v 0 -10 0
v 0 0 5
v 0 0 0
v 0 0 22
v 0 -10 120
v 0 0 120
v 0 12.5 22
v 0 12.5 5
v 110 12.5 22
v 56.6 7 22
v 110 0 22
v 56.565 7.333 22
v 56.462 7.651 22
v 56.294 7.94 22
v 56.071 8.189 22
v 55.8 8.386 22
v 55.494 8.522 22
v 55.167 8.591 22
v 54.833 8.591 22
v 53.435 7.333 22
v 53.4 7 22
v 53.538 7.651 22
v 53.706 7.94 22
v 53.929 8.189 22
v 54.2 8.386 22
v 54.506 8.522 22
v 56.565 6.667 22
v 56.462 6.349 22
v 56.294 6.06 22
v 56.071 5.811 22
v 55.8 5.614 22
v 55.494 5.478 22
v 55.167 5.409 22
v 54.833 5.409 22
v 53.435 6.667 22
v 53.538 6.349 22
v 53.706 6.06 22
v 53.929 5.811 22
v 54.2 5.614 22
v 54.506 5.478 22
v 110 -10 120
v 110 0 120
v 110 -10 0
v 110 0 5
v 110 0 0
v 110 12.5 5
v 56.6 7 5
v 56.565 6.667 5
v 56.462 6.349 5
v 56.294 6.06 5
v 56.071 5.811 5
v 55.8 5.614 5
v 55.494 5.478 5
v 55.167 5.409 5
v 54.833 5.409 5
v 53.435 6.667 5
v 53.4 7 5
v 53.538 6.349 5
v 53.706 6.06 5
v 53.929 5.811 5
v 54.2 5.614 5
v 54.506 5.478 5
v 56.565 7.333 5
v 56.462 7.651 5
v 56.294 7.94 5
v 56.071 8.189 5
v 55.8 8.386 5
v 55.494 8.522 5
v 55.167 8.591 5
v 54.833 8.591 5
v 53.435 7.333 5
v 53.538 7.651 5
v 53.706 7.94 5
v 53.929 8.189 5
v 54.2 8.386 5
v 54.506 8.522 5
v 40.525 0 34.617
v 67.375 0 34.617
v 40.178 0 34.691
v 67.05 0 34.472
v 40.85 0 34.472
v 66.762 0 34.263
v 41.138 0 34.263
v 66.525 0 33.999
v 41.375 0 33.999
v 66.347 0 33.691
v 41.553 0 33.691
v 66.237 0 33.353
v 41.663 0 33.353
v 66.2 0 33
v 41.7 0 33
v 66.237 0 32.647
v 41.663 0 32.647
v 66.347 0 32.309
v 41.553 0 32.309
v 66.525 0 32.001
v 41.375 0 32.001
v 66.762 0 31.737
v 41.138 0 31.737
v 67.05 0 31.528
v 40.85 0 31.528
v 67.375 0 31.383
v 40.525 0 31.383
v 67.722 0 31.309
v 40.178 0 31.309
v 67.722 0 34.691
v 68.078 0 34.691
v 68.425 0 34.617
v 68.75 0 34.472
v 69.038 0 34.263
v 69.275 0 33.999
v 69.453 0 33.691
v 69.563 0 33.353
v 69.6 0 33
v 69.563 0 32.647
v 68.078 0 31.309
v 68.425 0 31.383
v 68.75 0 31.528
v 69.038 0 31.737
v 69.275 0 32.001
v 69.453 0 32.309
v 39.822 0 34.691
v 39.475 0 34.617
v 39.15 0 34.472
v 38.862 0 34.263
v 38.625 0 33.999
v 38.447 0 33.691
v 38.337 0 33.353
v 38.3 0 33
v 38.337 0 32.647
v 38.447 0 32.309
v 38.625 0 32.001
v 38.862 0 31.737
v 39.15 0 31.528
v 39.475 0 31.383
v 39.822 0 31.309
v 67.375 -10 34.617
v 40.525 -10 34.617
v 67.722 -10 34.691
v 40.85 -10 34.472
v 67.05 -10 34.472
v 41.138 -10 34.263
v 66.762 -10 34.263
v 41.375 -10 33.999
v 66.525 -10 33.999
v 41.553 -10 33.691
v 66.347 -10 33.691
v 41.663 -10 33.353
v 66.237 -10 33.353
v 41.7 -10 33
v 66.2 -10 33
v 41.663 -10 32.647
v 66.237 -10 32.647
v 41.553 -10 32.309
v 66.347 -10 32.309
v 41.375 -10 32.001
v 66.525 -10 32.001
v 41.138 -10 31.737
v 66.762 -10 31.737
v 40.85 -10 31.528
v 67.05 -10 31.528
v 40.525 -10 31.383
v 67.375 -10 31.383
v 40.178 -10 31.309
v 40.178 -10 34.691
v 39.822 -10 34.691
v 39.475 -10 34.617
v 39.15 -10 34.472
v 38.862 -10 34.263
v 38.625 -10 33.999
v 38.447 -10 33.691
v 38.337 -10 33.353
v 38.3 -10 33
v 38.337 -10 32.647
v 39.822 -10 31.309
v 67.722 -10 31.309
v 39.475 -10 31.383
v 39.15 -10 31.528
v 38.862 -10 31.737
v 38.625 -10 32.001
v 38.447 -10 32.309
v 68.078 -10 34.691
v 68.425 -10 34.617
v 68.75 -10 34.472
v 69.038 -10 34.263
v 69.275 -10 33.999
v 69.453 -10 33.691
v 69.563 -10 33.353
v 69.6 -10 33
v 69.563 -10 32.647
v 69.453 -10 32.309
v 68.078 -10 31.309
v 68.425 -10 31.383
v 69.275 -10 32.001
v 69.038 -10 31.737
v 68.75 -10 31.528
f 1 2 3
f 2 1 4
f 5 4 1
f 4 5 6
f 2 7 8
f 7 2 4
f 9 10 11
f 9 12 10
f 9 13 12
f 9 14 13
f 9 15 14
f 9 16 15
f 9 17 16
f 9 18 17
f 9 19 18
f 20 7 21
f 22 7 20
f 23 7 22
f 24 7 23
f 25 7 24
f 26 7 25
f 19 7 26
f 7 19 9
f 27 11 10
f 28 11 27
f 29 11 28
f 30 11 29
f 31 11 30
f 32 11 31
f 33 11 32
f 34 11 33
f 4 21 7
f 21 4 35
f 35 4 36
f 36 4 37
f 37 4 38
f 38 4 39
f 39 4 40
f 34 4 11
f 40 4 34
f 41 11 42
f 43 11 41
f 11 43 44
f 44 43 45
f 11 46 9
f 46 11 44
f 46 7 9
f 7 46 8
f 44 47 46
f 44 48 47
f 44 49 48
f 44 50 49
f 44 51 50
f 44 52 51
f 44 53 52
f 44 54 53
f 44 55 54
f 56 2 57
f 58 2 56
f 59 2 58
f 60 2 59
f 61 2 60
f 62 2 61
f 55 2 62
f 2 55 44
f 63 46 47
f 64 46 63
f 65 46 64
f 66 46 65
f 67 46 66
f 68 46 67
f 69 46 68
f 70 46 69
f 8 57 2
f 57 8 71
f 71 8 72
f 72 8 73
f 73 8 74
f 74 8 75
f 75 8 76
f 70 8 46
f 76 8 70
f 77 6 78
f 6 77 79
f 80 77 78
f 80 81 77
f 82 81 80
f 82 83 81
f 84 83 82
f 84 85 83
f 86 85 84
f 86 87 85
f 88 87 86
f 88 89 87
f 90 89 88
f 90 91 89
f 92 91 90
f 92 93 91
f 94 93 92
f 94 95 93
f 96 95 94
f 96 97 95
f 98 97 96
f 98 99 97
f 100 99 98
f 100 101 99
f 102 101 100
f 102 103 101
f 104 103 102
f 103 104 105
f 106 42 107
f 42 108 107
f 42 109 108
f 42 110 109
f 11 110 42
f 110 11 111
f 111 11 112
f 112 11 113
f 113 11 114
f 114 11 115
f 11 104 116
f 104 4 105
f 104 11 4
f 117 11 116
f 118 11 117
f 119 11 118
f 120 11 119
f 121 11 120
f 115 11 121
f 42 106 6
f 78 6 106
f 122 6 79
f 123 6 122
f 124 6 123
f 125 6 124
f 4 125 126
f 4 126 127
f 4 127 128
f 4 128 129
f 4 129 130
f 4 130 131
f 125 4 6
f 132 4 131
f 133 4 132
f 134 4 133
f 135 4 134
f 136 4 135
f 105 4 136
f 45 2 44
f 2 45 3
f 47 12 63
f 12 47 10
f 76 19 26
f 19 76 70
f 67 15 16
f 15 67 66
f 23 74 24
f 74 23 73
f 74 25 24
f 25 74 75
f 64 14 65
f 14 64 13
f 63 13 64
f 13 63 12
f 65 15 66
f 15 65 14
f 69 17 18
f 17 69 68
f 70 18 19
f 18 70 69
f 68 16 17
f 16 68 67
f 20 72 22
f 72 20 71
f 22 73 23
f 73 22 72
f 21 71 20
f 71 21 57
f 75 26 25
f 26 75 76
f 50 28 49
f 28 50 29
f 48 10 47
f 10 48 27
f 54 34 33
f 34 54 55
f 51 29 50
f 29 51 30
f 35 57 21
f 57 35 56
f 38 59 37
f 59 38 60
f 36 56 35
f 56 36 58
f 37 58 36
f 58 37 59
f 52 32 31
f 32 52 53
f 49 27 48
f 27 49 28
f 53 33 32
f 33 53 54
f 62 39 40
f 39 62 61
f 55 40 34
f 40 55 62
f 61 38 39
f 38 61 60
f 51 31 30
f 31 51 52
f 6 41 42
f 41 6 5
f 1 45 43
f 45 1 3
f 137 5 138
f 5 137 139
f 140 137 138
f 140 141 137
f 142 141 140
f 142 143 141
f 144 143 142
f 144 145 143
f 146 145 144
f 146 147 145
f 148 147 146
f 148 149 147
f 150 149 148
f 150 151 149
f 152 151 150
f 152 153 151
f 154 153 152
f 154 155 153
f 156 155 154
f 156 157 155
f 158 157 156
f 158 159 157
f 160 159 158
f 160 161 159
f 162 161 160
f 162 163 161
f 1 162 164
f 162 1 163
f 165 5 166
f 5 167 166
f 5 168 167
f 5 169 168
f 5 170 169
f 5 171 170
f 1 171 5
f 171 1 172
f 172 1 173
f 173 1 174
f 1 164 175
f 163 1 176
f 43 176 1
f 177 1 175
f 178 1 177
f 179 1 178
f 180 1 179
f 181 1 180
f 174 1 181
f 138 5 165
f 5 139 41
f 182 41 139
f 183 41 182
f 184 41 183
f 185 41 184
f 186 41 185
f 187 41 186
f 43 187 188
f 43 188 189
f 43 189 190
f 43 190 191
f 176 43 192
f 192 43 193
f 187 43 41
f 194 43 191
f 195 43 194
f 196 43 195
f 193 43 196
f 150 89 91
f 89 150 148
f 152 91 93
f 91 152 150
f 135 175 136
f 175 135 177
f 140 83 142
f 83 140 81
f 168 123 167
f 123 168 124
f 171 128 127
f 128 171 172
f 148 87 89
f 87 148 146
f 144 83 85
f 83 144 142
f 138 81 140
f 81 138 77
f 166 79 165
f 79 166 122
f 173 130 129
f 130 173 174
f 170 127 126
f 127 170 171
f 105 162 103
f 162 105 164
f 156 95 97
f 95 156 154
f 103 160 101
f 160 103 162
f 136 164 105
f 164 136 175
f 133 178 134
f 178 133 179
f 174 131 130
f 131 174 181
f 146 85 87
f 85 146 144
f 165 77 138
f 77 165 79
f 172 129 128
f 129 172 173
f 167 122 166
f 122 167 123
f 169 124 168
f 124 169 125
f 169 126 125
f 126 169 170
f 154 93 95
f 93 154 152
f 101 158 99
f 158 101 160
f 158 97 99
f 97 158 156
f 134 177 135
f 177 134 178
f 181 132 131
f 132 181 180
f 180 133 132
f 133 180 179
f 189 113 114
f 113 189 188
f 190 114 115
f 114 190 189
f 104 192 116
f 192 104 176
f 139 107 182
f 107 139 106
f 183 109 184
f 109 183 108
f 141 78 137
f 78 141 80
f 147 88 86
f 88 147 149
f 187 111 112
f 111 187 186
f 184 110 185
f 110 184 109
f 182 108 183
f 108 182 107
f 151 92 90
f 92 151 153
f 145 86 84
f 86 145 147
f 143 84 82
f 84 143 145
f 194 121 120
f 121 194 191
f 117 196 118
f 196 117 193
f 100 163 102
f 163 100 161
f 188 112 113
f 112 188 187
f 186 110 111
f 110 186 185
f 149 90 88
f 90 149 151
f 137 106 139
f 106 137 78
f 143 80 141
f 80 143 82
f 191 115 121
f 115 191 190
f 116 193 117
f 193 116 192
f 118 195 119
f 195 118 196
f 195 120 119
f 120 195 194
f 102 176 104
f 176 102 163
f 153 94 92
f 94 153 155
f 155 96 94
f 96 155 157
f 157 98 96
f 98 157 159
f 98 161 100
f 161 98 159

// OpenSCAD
// ==== Scanner parameters ====
speaker_w = 58;        // Width
speaker_h = 58;        // Height

plate_w = 110;        // Width
plate_h = 110;        // Height
plate_thick = 5;        // Plate thickness

//scanner_d = 100;         // Depth
tab_offset = 7;         // Distance from edge to tab center (estimate! Measure yours if you can)
tab_dia = 3.6;          // This is a hole for ear
mount_dia = 3.2;        // Mounting hole diameter (estimate! Use caliper if you have one)

win_w = 75;             // Window width (measure the actual speaker if possible)
win_h = 75;             // Window height (measure the actual speaker if possible)
window_position_x = (plate_w - win_w) / 2;
window_position_y = (plate_h - win_h) / 2;

front_of_speaker_to_ear = 13.5;

layer2_x = 12.5;
layer2_y = layer2_x;
layer2_depth = 3;

inner_hole_from_edge = 4.5;

Arduino_base_x = 40;
Arduino_base_y = 33;

//difference() {
//    // --- Main plate ---
//    cube([plate_w, plate_h, plate_thick]);
//    
//    // --- speaker window ---
//    // Centered window, adjust as needed for your module!
//    translate([window_position_x, window_position_y, -1])
//        cube([win_w, win_h, plate_thick + 2]);
//    
//    // --- Mounting holes (2 outer) ---
//    translate([plate_w / 2, 7, -1])
//        cylinder(d = mount_dia, h = plate_thick + 99, $fn = 30);
//    translate([plate_h / 2, plate_w - 7, -1])
//        cylinder(d = mount_dia, h = plate_thick + 99, $fn = 30);
//}
//
//difference() {
//    translate([layer2_x, layer2_y, layer2_depth])
//        cube([win_w + 10, win_h + 10, front_of_speaker_to_ear]);
//    
//    translate([layer2_x + 5, layer2_y + 5, layer2_depth - 1])
//        cube([win_w, win_h, front_of_speaker_to_ear + 2]);
//}
//
//difference() {
//    translate([layer2_x, layer2_y, front_of_speaker_to_ear + layer2_depth])
//        cube([win_w + 10, win_h + 10, 5]);
//    
//    translate([layer2_x + 13.5, 0 , (front_of_speaker_to_ear + layer2_depth) - 1])
//        cube([speaker_w, speaker_h + 50, 5 + 2]);
//    
//    // --- Mounting holes (2 inner) ---
//    translate([layer2_x + 14 - inner_hole_from_edge, plate_w / 2, -1])
//        cylinder(d = tab_dia, h = layer2_depth + 99, $fn = 30);
//    translate([speaker_w + layer2_x + 13 + inner_hole_from_edge, plate_w / 2, -1])
//        cylinder(d = tab_dia, h = layer2_depth + 99, $fn = 30);
//}

module m3_hole_y(pos) {
    // pos = [x, z]
    translate([pos[0], 5, pos[1]])  // position X,Z; Y will be drilled through
        rotate([90, 0, 0])          // rotate cylinder to align along Y-axis
            cylinder(d=3.4, h=20, $fn=30);  // drill depth matches cube height
}

difference() {    
    translate([0, 0, 5])
        cube([plate_w, 12.5, 17]);
    
    // --- Mounting holes (2 outer) ---
    translate([plate_w / 2, 7, -1])
        cylinder(d = mount_dia, h = plate_thick + 99, $fn = 30);
    translate([plate_h / 2, plate_w - 7, -1])
        cylinder(d = mount_dia, h = plate_thick + 99, $fn = 30);
}

difference() {
    // The base block you provided
    translate([0, -10, 0])
        cube([plate_w, 10, 120]);

    // M3 Holes on Y axis for Arduino UNO
    m3_hole_y([Arduino_base_x, Arduino_base_y]);   // Hole 1
    m3_hole_y([Arduino_base_x + 27.9, Arduino_base_y]);  // Hole 2
}
